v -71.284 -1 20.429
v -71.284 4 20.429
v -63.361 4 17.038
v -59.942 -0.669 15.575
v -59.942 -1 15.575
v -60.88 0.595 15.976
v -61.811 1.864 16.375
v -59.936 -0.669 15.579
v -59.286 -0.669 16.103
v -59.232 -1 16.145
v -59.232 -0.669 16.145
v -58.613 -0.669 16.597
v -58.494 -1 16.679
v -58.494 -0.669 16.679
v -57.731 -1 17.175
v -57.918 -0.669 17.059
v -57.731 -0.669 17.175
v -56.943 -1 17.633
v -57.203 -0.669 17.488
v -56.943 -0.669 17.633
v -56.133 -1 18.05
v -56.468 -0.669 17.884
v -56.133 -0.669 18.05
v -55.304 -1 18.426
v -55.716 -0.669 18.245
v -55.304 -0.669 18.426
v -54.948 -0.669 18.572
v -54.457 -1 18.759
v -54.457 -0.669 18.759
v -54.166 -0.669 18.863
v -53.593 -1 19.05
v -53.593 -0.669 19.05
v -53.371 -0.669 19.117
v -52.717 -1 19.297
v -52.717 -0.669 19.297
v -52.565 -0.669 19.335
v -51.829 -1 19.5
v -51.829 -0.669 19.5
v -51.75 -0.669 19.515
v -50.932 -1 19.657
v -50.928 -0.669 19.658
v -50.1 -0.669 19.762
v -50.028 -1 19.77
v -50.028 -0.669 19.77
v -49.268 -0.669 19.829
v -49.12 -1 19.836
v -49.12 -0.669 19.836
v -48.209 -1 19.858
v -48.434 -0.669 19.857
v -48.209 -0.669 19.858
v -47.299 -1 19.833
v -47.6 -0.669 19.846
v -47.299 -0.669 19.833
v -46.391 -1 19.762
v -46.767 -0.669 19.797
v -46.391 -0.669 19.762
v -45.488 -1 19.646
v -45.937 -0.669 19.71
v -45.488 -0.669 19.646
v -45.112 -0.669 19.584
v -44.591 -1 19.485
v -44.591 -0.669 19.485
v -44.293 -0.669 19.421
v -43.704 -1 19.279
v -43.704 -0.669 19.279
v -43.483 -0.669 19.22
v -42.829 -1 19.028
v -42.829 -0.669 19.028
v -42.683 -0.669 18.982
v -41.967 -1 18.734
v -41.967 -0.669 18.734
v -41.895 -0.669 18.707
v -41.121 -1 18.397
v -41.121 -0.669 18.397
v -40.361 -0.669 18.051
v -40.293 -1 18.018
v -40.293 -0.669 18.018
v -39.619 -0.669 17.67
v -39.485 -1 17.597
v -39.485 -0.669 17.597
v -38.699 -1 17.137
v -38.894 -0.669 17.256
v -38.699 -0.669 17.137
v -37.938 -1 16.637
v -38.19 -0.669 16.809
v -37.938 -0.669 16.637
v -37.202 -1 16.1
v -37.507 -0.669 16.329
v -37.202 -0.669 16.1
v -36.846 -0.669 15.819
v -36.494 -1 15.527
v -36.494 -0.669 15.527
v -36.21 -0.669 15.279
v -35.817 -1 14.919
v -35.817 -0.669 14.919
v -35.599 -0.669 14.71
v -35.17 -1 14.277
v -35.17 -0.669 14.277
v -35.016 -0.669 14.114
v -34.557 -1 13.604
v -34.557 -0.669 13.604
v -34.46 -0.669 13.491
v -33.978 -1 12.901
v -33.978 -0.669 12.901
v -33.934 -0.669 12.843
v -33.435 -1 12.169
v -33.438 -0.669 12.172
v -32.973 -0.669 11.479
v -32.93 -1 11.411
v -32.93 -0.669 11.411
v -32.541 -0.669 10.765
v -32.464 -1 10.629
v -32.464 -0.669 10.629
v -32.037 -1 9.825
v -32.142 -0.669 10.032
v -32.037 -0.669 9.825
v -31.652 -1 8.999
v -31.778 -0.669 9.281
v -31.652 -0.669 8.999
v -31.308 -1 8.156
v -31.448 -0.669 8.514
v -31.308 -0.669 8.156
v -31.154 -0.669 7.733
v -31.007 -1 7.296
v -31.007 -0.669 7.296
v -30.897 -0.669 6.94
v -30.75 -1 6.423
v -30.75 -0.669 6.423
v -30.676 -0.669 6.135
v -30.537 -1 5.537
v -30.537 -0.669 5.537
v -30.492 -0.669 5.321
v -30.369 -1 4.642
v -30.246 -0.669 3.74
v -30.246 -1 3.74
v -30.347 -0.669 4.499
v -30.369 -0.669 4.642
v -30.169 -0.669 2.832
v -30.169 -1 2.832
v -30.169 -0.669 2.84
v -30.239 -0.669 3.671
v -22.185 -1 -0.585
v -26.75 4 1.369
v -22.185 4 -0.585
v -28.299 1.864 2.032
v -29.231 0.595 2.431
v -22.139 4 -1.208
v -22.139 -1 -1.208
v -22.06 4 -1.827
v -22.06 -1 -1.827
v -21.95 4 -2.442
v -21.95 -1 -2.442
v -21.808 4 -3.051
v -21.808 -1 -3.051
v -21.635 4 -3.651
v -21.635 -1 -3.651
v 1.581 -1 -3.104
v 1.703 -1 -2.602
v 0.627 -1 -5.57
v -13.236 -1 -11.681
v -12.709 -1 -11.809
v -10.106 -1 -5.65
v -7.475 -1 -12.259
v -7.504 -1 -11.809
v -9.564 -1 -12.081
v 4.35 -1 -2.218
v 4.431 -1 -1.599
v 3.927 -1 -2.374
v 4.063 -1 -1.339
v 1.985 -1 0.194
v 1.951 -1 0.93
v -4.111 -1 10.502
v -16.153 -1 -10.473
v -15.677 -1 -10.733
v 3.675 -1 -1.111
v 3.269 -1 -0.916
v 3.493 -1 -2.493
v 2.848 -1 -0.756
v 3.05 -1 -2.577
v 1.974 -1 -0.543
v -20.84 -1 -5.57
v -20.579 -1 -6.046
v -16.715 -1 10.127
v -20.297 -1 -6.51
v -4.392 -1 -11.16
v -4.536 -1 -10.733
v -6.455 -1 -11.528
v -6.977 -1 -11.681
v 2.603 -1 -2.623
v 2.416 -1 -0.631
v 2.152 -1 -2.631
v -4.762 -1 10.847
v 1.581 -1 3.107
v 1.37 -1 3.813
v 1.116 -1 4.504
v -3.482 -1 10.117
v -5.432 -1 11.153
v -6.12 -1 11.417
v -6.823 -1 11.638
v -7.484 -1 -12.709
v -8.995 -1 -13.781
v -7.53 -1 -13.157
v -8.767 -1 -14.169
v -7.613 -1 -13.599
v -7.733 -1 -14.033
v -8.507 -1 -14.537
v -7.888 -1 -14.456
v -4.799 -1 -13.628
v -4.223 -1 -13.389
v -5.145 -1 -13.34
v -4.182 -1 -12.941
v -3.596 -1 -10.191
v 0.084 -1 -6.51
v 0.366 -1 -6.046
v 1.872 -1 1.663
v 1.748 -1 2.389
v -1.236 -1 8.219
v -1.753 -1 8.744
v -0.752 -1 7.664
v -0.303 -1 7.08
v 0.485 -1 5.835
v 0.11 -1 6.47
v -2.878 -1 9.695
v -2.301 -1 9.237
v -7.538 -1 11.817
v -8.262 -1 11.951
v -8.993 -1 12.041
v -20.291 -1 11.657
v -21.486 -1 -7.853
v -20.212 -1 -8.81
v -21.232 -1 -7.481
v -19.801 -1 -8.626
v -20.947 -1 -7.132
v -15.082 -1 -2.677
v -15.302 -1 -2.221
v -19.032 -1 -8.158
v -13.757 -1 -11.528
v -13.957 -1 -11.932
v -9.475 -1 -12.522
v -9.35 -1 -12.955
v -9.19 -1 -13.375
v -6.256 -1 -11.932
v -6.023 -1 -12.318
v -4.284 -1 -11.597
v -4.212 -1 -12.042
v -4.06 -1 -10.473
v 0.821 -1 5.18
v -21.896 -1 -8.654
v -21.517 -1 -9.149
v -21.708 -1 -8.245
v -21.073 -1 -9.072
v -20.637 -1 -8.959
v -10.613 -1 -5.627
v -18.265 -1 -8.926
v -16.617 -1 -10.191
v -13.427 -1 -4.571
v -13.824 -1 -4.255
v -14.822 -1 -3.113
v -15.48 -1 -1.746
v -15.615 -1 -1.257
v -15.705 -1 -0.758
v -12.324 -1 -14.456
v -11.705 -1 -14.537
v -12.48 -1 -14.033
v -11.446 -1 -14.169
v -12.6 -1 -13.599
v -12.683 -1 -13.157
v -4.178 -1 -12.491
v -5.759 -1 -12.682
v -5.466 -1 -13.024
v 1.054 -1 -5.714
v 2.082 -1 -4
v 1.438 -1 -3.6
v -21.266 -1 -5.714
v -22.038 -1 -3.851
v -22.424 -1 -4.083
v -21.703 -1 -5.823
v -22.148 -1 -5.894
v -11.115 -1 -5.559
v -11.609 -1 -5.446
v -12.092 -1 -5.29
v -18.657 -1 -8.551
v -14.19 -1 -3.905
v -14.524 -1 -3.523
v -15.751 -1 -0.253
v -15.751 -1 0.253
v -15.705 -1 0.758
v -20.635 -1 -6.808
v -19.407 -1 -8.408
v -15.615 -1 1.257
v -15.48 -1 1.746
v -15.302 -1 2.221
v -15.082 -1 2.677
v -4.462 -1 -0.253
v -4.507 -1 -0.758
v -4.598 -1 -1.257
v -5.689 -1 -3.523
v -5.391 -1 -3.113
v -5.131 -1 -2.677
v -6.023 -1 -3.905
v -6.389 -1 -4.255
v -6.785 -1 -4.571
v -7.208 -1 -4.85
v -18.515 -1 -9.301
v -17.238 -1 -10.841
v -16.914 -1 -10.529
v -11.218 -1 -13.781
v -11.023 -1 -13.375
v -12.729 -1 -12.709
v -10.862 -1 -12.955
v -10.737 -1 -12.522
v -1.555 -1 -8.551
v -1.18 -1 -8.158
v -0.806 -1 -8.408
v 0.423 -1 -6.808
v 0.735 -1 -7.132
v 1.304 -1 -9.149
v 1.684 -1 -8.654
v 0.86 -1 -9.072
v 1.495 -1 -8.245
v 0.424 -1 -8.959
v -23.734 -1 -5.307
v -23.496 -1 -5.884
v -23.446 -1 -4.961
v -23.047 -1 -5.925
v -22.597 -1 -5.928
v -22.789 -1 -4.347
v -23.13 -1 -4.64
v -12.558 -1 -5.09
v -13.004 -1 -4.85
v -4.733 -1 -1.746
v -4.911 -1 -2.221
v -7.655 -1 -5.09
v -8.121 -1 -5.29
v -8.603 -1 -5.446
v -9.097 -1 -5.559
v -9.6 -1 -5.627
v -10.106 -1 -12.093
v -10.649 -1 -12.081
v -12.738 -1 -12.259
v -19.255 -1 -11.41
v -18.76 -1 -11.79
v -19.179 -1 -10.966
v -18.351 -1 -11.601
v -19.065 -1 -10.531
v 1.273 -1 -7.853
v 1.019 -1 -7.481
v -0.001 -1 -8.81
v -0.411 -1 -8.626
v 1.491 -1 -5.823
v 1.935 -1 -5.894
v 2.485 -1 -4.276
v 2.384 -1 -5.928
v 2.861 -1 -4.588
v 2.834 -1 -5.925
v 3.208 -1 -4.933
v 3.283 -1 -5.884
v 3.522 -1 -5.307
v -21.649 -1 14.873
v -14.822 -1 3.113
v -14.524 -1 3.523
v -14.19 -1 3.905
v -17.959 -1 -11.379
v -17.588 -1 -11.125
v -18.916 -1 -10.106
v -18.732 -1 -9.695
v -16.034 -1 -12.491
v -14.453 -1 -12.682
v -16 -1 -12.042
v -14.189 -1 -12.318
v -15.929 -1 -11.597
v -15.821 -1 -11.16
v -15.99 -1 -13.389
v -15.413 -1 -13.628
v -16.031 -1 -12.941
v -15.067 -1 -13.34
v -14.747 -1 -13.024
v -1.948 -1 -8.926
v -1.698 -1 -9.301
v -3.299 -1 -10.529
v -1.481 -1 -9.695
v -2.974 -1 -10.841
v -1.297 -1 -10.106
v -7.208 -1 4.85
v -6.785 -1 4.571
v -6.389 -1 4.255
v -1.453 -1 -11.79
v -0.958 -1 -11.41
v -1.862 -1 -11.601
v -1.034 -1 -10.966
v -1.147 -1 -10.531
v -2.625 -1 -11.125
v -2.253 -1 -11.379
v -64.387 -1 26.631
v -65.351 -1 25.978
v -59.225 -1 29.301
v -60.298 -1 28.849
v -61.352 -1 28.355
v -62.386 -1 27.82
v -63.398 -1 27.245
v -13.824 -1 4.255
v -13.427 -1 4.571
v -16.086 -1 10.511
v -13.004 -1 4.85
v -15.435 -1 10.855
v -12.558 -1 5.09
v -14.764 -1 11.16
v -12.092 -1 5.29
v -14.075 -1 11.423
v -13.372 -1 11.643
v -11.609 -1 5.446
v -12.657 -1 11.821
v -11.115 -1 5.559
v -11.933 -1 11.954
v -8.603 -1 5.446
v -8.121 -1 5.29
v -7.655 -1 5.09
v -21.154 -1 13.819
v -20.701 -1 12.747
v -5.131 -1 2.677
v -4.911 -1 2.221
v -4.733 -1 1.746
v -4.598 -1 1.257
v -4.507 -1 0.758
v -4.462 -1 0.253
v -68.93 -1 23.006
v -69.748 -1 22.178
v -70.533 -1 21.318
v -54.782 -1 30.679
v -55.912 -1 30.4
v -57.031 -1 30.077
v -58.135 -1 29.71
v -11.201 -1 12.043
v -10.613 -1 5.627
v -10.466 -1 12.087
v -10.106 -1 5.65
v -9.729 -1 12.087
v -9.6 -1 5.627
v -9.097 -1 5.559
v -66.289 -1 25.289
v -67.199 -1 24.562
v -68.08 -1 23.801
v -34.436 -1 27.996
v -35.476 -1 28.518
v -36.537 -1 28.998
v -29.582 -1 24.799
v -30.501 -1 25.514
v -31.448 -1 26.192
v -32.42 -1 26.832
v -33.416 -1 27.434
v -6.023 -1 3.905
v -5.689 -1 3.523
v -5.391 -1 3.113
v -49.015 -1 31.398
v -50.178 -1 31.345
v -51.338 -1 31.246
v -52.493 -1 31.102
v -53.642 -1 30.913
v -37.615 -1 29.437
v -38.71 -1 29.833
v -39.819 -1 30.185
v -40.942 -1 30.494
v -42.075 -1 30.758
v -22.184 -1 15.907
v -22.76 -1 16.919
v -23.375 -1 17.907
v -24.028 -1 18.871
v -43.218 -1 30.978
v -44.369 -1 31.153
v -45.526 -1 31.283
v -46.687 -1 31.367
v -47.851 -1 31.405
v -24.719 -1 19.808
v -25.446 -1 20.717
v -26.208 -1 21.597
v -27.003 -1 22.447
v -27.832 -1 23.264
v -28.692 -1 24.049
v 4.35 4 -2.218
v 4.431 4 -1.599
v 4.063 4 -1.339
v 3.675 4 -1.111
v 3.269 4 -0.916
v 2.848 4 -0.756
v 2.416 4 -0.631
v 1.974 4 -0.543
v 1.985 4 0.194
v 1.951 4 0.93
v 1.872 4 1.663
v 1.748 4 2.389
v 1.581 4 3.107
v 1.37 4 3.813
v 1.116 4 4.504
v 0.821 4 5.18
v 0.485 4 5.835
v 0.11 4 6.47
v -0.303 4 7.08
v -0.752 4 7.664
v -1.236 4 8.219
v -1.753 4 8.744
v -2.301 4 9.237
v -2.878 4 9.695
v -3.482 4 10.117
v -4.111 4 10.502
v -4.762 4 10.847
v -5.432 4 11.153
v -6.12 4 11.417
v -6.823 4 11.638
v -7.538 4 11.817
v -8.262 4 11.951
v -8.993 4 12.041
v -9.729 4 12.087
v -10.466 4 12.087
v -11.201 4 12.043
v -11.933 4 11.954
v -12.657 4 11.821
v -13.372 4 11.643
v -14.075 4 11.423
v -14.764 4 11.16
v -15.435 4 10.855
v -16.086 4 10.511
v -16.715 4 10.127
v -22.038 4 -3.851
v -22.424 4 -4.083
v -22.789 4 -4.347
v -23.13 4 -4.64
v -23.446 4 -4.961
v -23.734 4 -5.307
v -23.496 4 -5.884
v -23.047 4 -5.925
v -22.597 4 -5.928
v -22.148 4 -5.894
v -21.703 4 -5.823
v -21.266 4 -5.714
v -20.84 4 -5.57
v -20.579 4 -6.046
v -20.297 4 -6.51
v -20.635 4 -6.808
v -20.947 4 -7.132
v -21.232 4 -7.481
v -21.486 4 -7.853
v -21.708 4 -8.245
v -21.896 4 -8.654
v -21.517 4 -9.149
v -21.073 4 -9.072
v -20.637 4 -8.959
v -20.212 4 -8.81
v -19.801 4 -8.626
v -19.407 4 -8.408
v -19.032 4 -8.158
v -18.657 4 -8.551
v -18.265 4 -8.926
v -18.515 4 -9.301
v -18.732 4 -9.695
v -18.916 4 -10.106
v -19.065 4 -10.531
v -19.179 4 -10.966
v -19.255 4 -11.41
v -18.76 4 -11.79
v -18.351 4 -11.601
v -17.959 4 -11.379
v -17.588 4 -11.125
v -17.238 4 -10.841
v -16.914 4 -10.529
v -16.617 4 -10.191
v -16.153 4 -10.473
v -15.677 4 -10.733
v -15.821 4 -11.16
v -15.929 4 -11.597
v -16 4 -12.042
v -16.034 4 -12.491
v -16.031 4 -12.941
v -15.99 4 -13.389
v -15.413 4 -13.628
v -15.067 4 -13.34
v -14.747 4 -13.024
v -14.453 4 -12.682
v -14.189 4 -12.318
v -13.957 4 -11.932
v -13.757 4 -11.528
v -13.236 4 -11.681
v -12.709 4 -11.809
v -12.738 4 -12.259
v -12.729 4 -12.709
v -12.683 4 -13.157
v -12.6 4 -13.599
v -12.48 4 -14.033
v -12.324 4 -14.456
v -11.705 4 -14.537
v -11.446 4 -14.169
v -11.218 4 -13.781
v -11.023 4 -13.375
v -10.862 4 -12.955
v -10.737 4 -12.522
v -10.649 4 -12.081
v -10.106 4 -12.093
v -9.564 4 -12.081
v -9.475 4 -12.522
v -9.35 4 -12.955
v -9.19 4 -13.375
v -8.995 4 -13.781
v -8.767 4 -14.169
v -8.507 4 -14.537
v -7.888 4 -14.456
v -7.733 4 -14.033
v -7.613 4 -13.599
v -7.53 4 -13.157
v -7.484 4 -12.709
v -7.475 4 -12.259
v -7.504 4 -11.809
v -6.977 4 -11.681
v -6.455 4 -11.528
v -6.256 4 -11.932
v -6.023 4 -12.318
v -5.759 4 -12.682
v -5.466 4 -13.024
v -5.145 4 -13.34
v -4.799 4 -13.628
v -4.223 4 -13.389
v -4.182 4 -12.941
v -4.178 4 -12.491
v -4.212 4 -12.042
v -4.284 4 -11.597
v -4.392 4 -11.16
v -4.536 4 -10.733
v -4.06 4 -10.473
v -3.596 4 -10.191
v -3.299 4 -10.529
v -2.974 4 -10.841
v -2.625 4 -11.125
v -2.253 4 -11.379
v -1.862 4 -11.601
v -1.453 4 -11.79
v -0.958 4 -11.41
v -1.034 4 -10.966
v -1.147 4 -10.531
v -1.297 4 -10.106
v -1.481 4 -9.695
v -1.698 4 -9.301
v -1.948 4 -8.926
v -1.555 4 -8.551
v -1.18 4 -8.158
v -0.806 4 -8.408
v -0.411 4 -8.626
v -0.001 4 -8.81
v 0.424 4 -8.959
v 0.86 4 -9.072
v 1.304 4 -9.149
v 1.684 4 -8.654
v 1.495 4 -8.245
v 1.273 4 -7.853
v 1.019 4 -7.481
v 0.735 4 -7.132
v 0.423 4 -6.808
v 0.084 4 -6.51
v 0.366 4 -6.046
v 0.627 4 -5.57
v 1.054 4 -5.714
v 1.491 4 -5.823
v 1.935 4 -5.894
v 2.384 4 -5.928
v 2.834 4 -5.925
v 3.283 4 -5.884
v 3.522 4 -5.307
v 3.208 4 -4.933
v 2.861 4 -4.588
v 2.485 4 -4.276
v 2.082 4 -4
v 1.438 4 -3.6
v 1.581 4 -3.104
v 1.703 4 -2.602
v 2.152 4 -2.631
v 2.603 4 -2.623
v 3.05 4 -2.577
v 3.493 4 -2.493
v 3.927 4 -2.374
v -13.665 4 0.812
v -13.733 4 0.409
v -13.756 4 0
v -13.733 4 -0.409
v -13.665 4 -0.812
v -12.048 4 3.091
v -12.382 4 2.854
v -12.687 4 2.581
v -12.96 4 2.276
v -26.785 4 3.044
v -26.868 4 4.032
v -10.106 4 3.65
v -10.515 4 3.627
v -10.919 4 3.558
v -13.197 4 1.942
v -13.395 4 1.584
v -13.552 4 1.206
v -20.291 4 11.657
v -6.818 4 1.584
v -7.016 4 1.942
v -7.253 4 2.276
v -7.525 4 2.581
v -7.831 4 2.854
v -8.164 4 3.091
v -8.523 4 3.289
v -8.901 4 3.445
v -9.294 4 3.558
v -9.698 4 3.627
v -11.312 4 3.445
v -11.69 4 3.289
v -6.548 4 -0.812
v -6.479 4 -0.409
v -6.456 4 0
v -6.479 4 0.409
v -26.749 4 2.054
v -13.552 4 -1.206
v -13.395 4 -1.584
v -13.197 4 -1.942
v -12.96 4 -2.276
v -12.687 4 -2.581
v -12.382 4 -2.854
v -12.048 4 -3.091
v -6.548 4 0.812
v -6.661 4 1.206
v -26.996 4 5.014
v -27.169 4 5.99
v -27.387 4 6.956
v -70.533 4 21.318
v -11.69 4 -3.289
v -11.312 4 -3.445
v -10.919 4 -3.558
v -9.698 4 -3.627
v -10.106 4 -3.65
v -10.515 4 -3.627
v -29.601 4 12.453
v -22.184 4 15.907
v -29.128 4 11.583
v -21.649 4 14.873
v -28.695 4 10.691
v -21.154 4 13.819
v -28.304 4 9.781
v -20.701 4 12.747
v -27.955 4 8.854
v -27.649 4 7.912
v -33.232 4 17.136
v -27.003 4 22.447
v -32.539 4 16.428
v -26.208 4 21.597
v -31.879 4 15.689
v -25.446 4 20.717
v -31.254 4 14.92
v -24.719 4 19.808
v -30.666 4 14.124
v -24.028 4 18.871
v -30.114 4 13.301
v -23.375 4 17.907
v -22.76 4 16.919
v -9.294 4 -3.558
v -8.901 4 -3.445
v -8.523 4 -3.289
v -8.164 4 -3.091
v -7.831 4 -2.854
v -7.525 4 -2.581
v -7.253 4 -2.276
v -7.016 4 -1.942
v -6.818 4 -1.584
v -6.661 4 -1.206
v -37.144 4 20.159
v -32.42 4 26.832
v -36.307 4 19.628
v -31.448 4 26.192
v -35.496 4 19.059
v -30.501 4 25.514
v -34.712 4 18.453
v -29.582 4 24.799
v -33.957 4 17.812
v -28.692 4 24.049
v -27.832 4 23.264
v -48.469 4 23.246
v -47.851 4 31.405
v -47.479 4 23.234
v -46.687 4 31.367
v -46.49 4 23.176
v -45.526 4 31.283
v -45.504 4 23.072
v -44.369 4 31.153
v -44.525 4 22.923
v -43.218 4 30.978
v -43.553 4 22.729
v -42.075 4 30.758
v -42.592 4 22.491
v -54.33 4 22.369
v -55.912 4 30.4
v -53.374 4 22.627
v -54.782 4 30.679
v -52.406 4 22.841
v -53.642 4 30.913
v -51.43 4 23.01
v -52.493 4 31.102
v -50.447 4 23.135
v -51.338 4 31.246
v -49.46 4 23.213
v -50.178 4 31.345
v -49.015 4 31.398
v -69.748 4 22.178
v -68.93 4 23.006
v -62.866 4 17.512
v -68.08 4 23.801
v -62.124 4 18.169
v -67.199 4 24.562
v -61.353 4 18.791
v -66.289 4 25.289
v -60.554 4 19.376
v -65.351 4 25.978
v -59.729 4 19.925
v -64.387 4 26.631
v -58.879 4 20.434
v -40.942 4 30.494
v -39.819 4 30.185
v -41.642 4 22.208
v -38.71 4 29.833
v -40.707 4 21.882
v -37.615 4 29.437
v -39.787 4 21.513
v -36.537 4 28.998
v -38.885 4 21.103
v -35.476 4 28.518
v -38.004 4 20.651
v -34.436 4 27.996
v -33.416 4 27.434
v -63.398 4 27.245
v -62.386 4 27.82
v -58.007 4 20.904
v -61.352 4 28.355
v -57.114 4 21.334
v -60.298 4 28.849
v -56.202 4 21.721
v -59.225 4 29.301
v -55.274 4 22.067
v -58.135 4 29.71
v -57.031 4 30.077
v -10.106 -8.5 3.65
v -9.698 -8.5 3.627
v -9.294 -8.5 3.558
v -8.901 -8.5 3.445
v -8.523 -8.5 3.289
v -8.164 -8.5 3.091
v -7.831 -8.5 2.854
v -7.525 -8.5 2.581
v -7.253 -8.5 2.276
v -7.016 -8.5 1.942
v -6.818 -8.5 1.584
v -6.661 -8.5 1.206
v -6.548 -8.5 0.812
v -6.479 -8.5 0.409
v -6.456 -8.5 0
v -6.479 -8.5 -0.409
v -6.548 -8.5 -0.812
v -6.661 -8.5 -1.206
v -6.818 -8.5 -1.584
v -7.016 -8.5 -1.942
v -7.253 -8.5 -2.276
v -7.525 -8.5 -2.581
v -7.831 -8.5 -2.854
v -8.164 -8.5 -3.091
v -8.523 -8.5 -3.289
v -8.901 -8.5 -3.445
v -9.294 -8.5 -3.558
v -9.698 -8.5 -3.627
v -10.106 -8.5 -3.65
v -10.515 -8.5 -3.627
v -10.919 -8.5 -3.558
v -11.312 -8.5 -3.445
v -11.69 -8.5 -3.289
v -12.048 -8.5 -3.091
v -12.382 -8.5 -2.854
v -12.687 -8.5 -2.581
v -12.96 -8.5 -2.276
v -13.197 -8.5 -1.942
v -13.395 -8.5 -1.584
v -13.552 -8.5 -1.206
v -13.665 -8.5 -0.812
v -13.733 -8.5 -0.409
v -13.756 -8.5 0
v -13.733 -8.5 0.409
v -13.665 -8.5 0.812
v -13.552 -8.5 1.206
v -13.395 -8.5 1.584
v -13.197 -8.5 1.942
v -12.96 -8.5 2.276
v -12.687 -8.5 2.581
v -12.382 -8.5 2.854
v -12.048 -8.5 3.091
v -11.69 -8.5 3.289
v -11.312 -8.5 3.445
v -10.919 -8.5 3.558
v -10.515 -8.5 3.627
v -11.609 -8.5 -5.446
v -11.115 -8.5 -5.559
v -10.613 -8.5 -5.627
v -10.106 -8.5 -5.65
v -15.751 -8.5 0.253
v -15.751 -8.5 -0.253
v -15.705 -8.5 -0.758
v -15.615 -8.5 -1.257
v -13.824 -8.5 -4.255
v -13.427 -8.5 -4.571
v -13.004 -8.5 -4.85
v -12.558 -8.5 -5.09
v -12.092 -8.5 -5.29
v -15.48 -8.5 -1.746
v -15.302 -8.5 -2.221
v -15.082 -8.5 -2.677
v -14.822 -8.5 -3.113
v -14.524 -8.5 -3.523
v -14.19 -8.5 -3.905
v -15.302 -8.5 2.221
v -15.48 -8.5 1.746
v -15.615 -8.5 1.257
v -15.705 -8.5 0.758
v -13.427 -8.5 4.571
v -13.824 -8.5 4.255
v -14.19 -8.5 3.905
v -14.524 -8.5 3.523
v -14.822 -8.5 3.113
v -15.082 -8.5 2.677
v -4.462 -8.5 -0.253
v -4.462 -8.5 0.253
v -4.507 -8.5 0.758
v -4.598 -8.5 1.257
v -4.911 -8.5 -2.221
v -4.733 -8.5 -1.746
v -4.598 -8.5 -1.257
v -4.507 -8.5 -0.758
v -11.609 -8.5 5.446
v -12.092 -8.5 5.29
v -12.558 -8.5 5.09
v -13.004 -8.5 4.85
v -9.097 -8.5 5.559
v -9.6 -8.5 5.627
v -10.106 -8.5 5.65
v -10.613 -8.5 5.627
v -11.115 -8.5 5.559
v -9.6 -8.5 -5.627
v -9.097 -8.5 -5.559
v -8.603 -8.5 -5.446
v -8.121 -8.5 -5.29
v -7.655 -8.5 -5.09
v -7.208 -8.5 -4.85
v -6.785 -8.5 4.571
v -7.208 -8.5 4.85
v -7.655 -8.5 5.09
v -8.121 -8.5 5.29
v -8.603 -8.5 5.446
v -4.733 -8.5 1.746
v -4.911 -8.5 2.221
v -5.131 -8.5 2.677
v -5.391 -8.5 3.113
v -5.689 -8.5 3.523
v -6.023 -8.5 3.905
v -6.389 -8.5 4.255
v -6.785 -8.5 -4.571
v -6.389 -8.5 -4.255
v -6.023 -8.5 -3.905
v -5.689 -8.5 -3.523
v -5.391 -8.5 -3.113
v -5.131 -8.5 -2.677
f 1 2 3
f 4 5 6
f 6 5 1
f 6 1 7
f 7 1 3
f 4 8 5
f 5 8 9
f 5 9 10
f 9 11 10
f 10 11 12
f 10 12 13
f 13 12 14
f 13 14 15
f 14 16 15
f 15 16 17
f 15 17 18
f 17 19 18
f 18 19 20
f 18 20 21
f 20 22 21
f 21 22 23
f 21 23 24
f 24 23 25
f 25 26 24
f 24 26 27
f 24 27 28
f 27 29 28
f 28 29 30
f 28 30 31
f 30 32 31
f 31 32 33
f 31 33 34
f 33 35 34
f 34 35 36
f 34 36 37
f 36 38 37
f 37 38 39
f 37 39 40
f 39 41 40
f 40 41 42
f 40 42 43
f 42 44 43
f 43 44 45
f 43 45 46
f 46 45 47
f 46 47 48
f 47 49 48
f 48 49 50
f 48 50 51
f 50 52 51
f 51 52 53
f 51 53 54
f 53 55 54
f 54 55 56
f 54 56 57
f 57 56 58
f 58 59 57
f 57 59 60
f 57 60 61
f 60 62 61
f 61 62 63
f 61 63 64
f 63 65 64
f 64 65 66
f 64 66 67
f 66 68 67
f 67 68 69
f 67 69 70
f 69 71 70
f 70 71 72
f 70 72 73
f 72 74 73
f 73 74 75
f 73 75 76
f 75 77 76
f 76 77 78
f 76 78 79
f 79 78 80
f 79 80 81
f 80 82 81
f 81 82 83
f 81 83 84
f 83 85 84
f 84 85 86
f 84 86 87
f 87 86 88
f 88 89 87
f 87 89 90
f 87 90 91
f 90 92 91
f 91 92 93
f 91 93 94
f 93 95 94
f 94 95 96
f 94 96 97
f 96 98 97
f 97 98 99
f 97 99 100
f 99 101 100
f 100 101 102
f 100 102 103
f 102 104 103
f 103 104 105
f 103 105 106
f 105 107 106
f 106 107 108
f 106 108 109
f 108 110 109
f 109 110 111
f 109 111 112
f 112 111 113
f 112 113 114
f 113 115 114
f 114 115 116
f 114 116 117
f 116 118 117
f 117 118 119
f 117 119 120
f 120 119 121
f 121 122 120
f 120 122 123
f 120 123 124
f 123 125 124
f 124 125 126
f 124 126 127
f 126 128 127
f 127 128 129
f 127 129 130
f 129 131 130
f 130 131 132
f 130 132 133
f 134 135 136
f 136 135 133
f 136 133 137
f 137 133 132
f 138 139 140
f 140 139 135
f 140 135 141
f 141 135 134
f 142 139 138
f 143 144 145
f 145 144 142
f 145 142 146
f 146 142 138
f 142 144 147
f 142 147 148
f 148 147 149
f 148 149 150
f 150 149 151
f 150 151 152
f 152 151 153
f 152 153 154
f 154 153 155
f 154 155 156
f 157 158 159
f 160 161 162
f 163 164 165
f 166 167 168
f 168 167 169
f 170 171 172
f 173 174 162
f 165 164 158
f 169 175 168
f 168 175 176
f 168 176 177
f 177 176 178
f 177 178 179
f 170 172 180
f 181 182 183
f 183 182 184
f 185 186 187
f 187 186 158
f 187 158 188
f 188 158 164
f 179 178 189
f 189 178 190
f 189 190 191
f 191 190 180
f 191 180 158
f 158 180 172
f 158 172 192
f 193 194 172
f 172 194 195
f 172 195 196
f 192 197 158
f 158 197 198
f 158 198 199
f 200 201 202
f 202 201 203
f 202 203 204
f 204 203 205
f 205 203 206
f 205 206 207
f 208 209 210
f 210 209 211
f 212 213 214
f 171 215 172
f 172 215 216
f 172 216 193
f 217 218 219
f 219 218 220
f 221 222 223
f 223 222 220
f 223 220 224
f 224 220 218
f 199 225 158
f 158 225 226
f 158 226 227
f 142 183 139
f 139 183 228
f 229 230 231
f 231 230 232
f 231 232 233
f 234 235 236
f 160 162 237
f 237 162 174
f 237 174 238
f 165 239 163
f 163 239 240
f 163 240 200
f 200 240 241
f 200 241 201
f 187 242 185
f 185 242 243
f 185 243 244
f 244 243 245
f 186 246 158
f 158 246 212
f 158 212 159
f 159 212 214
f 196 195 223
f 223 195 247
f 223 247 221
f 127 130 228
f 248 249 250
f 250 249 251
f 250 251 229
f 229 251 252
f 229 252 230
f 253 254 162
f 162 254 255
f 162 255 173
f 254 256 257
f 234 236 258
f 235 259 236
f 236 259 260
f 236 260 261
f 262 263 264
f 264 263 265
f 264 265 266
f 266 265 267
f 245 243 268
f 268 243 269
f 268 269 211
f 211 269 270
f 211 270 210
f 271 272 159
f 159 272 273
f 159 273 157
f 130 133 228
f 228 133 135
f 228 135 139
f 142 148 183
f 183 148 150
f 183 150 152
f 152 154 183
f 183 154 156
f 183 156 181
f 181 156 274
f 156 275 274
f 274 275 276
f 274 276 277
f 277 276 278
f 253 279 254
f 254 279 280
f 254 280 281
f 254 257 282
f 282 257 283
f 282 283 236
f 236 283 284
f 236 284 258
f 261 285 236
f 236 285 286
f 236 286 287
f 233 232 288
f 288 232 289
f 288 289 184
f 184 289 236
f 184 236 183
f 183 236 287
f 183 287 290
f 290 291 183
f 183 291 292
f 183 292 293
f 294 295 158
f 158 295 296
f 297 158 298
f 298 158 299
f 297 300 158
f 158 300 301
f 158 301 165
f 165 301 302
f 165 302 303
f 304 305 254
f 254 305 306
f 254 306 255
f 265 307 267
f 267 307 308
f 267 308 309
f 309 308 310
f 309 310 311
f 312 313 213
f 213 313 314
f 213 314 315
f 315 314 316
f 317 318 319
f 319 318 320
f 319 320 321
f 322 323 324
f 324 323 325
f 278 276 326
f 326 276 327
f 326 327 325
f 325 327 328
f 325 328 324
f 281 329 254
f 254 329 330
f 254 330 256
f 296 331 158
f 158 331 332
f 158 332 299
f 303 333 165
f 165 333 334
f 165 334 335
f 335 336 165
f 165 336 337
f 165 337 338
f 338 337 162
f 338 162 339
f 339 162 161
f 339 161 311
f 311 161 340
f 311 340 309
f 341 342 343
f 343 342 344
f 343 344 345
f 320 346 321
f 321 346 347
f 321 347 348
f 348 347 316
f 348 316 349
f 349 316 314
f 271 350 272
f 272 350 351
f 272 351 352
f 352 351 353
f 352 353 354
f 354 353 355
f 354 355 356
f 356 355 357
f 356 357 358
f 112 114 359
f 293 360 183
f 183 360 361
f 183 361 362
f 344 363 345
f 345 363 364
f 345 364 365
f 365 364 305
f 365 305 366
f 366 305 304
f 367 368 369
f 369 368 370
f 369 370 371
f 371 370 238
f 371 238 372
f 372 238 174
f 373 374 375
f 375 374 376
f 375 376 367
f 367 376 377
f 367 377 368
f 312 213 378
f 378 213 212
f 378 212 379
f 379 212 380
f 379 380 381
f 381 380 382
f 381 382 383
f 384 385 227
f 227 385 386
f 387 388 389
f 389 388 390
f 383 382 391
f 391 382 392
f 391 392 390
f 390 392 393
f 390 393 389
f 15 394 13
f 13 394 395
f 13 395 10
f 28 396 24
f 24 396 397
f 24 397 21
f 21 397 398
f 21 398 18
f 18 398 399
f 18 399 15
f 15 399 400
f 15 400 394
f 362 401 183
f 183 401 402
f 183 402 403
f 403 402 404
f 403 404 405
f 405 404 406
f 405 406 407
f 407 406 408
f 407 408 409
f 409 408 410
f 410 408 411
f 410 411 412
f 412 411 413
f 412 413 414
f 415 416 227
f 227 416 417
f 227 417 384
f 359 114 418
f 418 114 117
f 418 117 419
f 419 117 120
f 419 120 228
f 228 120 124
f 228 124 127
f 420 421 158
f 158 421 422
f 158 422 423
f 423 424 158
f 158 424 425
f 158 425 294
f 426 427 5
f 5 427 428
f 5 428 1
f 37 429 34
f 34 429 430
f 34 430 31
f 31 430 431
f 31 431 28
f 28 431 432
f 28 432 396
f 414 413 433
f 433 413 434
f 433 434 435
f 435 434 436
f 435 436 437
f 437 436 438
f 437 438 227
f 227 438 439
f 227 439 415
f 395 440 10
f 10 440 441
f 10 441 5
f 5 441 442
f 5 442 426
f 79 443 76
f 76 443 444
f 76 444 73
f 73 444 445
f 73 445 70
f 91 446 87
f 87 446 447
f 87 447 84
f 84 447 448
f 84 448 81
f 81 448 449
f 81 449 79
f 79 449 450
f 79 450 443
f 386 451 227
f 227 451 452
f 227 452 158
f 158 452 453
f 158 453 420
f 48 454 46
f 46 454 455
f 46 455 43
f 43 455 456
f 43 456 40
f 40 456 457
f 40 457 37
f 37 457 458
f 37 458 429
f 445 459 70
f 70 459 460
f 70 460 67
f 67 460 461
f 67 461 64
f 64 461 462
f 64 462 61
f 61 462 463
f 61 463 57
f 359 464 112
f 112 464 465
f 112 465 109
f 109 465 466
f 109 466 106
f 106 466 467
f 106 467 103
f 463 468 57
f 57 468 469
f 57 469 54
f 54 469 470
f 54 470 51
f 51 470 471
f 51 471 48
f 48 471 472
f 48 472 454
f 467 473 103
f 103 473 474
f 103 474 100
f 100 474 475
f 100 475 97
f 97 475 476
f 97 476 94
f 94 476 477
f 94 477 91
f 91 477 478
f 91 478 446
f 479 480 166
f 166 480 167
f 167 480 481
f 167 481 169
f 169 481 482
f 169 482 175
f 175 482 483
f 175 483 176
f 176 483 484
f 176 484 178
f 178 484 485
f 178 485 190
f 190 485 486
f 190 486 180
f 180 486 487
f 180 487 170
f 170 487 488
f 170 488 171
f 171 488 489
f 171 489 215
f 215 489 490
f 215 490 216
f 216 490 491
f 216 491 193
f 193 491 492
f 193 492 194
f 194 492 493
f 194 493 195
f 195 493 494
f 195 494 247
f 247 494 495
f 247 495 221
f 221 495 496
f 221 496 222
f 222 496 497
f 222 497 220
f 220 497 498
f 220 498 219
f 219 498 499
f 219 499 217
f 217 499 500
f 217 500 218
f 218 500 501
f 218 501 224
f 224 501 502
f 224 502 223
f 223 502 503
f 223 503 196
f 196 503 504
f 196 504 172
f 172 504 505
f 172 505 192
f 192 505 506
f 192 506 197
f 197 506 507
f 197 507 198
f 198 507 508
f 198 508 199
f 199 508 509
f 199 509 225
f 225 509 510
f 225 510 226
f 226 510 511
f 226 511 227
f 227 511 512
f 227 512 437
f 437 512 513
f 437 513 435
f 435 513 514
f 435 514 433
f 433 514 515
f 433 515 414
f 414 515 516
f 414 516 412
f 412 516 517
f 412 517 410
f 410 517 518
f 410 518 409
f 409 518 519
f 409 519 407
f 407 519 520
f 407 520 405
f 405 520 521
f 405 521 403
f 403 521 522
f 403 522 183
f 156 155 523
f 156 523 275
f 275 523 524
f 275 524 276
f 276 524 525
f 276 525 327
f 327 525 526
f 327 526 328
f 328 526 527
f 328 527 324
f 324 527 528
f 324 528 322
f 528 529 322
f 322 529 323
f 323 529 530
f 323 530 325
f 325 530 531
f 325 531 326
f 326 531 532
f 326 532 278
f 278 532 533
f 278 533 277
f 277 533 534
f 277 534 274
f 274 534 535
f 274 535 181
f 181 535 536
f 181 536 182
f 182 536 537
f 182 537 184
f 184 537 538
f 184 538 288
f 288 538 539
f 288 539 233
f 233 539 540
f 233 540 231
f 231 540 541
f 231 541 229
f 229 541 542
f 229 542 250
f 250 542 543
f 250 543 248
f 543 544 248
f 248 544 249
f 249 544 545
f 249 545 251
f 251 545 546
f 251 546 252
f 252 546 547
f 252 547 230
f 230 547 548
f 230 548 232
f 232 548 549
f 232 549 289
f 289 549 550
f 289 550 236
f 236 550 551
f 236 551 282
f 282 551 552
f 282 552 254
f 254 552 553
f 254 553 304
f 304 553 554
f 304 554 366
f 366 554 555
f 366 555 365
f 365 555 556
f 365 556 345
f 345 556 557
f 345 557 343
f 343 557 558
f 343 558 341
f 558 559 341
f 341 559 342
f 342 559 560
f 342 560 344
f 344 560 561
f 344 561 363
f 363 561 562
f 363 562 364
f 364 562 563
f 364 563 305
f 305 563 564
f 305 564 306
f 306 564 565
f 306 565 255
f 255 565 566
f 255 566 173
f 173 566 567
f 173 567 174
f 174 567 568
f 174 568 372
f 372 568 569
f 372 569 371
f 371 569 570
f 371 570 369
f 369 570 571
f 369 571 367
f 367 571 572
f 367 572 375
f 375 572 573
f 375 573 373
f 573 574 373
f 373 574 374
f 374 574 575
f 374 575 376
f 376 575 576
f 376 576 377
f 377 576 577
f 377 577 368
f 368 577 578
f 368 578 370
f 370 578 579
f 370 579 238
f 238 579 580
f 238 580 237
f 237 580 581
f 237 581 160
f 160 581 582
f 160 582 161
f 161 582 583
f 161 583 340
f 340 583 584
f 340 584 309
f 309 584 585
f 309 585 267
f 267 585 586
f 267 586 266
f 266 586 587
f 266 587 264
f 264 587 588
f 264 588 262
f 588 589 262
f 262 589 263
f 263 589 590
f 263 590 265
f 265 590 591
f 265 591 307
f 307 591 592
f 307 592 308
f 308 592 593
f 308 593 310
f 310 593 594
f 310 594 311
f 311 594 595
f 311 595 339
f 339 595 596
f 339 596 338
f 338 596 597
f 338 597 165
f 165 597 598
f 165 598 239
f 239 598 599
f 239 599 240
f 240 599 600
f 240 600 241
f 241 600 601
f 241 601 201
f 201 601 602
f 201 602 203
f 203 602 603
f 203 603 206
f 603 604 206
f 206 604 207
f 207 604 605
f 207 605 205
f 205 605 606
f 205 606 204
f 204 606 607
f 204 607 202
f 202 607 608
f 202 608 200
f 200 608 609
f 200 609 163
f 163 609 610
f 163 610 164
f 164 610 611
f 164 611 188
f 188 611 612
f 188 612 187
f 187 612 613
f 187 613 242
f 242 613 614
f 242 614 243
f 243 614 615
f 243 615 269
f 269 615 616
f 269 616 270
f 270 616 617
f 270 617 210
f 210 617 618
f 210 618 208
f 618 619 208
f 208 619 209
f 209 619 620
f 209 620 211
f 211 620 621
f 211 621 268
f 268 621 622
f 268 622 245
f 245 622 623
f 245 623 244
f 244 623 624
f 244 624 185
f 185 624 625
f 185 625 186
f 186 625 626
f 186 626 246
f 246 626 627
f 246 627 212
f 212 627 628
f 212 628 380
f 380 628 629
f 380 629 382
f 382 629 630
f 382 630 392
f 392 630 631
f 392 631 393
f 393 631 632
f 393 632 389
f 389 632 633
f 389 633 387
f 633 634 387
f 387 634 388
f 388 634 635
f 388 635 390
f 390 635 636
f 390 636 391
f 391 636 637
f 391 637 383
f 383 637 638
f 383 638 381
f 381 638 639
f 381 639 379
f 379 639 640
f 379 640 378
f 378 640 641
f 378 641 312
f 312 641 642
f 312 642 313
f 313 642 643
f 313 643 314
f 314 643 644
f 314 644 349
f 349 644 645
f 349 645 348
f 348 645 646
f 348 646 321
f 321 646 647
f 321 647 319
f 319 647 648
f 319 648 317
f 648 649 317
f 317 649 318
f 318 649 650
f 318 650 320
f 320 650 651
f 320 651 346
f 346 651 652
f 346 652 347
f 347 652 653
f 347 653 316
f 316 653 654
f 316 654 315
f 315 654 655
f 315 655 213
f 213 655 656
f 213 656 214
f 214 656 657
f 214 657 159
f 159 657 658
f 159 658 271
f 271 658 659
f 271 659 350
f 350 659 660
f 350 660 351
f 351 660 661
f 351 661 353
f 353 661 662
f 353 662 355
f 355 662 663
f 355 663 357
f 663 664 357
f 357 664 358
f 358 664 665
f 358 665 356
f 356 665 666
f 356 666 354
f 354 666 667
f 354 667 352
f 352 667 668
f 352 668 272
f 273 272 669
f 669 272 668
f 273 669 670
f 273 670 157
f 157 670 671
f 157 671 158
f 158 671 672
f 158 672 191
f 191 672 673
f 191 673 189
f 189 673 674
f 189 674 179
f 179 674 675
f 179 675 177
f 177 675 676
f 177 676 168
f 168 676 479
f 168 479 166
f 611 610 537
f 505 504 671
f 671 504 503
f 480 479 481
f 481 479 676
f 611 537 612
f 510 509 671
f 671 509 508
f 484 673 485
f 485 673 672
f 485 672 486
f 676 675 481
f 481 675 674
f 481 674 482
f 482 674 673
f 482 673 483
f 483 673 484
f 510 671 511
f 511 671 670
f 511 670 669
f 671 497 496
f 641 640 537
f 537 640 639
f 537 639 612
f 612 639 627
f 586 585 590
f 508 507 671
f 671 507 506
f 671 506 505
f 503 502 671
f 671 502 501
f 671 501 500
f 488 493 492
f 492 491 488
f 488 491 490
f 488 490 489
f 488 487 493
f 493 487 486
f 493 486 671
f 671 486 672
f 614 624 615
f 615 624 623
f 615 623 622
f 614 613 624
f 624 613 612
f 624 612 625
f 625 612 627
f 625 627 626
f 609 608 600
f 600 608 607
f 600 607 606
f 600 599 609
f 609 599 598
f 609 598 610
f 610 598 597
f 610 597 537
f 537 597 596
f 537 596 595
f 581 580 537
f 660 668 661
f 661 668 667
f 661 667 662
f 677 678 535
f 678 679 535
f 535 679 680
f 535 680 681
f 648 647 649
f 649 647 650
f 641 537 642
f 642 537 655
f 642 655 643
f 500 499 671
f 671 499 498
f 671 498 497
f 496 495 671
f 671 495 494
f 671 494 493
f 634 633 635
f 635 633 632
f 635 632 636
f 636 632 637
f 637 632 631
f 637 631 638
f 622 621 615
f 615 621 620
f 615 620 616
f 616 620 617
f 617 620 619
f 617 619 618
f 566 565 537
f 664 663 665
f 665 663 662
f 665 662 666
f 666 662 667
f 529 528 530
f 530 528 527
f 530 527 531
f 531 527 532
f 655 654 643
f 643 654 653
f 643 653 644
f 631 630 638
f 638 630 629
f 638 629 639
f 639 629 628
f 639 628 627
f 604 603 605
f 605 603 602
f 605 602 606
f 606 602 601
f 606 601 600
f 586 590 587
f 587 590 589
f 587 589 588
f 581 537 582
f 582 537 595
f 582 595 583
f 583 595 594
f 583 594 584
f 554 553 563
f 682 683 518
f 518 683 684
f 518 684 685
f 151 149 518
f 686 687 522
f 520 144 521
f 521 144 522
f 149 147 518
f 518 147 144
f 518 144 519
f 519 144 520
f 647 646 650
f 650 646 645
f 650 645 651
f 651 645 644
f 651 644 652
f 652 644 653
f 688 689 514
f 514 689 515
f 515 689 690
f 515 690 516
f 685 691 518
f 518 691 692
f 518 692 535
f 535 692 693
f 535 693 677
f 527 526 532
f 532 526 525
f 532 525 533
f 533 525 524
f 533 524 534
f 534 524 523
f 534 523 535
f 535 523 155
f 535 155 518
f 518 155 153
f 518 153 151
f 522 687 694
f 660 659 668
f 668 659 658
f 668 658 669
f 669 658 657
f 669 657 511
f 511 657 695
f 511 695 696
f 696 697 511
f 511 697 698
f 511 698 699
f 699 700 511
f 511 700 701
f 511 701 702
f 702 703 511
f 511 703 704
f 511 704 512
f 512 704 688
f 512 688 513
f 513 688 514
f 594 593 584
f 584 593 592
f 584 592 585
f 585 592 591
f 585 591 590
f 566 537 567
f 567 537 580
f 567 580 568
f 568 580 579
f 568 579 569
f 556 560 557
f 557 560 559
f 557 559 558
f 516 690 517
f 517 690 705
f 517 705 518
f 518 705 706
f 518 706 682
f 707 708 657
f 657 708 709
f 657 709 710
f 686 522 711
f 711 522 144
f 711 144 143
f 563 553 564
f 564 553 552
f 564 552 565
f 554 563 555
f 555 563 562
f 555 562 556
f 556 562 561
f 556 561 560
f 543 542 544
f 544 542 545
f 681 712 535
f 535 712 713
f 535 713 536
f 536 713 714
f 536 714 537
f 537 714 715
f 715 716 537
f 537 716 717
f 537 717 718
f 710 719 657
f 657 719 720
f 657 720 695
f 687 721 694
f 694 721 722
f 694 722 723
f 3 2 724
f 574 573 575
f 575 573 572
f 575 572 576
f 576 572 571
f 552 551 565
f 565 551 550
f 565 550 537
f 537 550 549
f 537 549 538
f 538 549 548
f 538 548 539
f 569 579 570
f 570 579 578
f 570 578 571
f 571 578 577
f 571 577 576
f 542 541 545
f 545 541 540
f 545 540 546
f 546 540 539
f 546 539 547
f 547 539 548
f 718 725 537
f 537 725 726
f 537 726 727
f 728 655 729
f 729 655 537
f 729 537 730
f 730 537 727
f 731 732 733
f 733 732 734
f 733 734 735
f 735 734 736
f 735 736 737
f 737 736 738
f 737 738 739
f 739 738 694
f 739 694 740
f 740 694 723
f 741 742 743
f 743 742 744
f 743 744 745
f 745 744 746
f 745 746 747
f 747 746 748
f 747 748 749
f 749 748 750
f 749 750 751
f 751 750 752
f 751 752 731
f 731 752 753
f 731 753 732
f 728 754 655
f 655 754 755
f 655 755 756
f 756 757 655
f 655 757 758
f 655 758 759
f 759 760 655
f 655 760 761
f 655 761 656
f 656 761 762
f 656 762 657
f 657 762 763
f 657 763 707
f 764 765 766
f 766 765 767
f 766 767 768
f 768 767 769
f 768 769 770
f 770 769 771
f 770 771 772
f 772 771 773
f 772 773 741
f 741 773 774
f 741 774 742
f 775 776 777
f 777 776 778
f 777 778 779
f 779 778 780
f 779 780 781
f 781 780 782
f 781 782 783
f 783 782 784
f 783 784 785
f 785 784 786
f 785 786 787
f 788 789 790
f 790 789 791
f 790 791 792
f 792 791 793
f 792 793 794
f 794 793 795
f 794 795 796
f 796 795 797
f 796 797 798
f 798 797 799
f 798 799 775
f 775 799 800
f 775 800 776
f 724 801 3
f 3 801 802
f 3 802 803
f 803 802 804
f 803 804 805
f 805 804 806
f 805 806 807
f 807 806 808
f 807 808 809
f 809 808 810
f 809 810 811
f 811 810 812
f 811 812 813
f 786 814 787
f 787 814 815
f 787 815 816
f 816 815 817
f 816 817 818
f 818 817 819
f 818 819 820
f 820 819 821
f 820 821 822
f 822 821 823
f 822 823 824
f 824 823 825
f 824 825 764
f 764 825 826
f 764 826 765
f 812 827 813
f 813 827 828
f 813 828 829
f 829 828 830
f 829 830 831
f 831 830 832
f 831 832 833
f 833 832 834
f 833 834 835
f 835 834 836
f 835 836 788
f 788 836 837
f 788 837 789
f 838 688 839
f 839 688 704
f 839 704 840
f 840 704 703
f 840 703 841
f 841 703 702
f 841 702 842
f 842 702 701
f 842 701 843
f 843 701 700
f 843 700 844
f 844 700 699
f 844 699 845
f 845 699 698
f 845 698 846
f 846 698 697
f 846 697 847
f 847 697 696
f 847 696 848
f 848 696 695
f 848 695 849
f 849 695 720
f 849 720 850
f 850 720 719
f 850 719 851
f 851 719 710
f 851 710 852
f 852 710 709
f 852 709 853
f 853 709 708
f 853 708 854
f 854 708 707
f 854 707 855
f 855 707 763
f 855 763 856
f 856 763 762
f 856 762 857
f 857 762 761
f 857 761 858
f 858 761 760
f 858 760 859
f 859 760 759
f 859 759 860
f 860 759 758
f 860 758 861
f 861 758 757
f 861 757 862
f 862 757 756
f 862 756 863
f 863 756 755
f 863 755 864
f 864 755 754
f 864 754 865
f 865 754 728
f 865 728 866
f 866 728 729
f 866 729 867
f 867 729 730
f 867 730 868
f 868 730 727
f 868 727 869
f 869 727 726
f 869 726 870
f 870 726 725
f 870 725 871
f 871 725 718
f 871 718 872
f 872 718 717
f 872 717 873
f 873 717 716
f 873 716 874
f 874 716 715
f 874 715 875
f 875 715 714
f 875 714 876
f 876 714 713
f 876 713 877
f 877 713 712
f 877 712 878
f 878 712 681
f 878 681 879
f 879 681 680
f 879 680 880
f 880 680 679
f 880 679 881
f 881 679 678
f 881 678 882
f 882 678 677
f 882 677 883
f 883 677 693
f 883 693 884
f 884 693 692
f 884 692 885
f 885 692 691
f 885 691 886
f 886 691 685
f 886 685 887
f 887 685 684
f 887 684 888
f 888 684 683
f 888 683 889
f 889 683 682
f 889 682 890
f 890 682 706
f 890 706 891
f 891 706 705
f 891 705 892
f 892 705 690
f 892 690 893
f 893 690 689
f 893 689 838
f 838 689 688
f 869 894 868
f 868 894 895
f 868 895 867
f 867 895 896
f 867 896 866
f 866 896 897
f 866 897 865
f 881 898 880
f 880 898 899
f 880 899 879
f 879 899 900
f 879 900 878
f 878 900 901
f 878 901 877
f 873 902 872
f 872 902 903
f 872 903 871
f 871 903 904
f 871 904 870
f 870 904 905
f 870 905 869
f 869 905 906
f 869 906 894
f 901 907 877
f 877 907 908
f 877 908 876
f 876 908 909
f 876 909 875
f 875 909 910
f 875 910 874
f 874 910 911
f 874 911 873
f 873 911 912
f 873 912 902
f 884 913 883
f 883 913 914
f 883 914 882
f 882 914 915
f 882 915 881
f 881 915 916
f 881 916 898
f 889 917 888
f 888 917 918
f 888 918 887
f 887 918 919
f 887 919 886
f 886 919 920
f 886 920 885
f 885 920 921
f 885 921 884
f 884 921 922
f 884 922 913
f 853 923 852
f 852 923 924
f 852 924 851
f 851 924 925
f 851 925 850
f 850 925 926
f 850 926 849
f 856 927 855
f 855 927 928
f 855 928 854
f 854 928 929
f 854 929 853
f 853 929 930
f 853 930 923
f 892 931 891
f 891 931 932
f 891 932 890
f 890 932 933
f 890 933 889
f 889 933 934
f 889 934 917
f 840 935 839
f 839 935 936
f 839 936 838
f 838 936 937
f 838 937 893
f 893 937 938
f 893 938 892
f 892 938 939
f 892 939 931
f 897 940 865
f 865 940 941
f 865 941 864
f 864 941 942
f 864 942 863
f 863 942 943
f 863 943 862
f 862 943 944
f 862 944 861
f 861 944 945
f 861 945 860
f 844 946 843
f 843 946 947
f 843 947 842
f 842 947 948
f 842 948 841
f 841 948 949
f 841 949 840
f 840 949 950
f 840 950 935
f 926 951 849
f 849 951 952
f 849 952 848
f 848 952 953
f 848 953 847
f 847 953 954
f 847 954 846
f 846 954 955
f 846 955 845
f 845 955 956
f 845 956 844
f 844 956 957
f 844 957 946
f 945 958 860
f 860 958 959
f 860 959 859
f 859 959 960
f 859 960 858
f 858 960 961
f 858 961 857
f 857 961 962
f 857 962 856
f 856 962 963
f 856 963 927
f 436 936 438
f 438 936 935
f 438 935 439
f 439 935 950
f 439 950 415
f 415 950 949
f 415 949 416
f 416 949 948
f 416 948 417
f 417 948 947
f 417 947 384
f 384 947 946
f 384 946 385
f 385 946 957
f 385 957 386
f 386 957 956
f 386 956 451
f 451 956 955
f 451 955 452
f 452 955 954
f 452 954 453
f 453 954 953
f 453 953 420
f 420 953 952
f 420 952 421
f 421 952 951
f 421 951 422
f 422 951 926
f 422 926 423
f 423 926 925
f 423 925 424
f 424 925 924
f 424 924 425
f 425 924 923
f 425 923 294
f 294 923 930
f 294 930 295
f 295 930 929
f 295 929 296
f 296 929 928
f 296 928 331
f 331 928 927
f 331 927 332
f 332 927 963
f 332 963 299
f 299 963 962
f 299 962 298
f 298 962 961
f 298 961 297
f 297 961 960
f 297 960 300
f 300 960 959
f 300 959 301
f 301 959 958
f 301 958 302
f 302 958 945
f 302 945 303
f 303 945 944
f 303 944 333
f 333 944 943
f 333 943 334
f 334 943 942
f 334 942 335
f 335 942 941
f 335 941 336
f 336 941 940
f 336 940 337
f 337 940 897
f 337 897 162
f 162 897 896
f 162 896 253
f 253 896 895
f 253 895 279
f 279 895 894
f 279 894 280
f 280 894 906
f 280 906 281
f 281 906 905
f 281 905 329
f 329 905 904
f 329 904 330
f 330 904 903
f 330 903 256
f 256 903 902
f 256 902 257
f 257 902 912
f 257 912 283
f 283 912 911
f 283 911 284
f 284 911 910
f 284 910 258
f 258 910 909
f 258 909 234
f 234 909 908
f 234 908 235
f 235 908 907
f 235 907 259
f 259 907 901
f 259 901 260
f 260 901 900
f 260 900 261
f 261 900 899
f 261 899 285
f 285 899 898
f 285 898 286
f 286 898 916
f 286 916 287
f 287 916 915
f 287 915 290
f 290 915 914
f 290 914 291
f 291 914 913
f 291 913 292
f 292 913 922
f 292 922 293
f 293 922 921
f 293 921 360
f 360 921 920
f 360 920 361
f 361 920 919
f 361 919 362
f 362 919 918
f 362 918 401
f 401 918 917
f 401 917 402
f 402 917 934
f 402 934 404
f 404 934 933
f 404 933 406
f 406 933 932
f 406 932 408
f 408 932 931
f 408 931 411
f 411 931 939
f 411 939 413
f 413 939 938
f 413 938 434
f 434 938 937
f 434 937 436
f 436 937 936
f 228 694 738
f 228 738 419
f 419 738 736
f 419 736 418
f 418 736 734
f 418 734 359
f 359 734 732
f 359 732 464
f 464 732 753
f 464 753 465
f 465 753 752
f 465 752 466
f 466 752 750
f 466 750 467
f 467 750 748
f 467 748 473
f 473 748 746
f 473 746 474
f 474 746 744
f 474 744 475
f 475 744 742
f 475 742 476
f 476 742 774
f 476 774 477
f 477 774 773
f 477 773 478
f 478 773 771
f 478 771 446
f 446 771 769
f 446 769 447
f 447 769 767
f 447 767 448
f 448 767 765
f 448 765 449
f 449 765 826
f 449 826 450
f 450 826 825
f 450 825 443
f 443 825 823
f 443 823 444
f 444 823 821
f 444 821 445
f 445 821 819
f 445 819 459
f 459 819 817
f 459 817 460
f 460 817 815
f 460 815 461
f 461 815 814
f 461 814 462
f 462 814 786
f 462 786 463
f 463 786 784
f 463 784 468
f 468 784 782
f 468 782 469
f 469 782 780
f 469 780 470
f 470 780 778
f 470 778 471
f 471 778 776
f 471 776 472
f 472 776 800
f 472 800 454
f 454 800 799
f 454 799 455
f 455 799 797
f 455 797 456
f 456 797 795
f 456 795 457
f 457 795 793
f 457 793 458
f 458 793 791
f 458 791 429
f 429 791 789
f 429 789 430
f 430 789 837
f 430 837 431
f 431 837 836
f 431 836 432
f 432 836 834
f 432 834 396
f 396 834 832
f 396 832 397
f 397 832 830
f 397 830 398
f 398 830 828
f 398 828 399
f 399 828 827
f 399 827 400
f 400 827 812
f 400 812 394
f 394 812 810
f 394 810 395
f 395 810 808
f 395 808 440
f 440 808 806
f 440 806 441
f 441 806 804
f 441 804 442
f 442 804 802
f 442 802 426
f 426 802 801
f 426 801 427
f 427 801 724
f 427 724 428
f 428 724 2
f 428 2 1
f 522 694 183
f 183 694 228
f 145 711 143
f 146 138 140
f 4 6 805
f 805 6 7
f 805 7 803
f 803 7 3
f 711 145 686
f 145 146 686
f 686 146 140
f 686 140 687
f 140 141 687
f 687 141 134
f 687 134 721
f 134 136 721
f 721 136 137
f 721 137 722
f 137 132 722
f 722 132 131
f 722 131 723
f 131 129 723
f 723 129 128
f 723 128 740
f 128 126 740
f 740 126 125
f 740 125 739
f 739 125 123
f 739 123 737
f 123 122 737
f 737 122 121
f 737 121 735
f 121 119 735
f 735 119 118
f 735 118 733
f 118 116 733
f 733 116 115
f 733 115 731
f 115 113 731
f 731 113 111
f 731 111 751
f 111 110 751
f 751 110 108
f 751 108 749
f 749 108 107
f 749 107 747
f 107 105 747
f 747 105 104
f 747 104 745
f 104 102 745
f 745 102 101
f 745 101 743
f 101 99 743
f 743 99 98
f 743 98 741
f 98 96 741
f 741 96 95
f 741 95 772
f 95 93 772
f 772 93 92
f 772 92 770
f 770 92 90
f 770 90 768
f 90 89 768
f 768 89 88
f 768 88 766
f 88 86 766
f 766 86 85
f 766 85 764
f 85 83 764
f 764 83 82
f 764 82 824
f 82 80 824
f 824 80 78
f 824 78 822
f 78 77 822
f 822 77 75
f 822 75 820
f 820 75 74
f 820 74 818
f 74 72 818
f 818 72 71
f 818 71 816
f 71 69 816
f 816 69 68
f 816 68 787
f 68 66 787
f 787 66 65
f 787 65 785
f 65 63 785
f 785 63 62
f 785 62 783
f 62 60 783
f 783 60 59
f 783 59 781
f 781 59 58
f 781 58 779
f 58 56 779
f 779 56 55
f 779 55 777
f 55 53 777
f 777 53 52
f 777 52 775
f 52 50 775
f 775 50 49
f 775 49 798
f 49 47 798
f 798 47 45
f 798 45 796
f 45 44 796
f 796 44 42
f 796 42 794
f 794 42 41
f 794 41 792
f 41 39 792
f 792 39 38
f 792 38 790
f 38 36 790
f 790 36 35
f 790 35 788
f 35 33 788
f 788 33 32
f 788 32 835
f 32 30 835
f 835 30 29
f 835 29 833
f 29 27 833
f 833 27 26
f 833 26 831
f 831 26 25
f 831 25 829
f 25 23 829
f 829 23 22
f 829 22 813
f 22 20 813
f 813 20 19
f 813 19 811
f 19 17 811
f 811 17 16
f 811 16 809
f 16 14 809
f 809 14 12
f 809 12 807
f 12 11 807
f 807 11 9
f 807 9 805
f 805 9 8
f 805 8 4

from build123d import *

# Parameters (mm, degrees)
SKETCH1_R           = 3.65
BOSS_EXTRUDE1_DEPTH = 5
SKETCH_1_R          = 5.65
SKETCH_1_R_2        = 3.65
EXTRUDE_1_DEPTH     = 7.5
EXTRUDE_2_DEPTH     = 5


with BuildPart() as part:
    # Sketch1 → Boss-Extrude1 (new body)
    with BuildSketch(Plane(origin=(0, 4, 0), x_dir=(1, 0, 0), z_dir=(0, 1, 0))):
        with BuildLine():
            Line((1.43808022, 3.600125745), (2.081641936, 4))
            ThreePointArc((2.081641936, 4), (2.861028333, 4.588201733), (3.521749436, 5.30713988))
            ThreePointArc((3.521749436, 5.30713988), (3.405395609, 5.596745198), (3.282888305, 5.883801663))
            ThreePointArc((3.282888305, 5.883801663), (1.93527598, 5.894040025), (0.627094961, 5.57027124))
            ThreePointArc((0.627094961, 5.57027124), (0.366286148, 6.046375), (0.084372603, 6.510293938))
            ThreePointArc((0.084372603, 6.510293938), (1.018855105, 7.48132754), (1.683794586, 8.65351323))
            ThreePointArc((1.683794586, 8.65351323), (1.496450048, 8.903135899), (1.303821399, 9.148703928))
            ThreePointArc((1.303821399, 9.148703928), (-0.000522033, 8.809805691), (-1.180330337, 8.158486898))
            ThreePointArc((-1.180330337, 8.158486898), (-1.555477026, 8.550865528), (-1.947855656, 8.926012217))
            ThreePointArc((-1.947855656, 8.926012217), (-1.296536862, 10.105820521), (-0.957638625, 11.410163953))
            ThreePointArc((-0.957638625, 11.410163953), (-1.203206655, 11.602792602), (-1.452829324, 11.79013714))
            ThreePointArc((-1.452829324, 11.79013714), (-2.625015014, 11.125197659), (-3.596048616, 10.190715157))
            ThreePointArc((-3.596048616, 10.190715157), (-4.059967554, 10.472628702), (-4.536071314, 10.733437515))
            ThreePointArc((-4.536071314, 10.733437515), (-4.212302529, 12.041618533), (-4.222540891, 13.389230859))
            ThreePointArc((-4.222540891, 13.389230859), (-4.509597355, 13.511738163), (-4.799202674, 13.62809199))
            ThreePointArc((-4.799202674, 13.62809199), (-5.759348103, 12.682425791), (-6.455432668, 11.528463019))
            ThreePointArc((-6.455432668, 11.528463019), (-6.976508546, 11.680699536), (-7.503891752, 11.809396783))
            ThreePointArc((-7.503891752, 11.809396783), (-7.529737283, 13.156800143), (-7.888414517, 14.455843809))
            ThreePointArc((-7.888414517, 14.455843809), (-8.197396993, 14.499881098), (-8.507248835, 14.537314892))
            ThreePointArc((-8.507248835, 14.537314892), (-9.18992168, 13.375367565), (-9.563620196, 12.080565177))
            ThreePointArc((-9.563620196, 12.080565177), (-10.106342554, 12.09275), (-10.649064912, 12.080565177))
            ThreePointArc((-10.649064912, 12.080565177), (-11.022763428, 13.375367565), (-11.705436272, 14.537314892))
            ThreePointArc((-11.705436272, 14.537314892), (-12.015288115, 14.499881098), (-12.324270591, 14.455843809))
            ThreePointArc((-12.324270591, 14.455843809), (-12.682947825, 13.156800143), (-12.708793355, 11.809396783))
            ThreePointArc((-12.708793355, 11.809396783), (-13.236176561, 11.680699536), (-13.757252439, 11.528463019))
            ThreePointArc((-13.757252439, 11.528463019), (-14.453337005, 12.682425791), (-15.413482434, 13.62809199))
            ThreePointArc((-15.413482434, 13.62809199), (-15.703087752, 13.511738163), (-15.990144217, 13.389230859))
            ThreePointArc((-15.990144217, 13.389230859), (-16.000382579, 12.041618533), (-15.676613793, 10.733437515))
            ThreePointArc((-15.676613793, 10.733437515), (-16.152717554, 10.472628702), (-16.616636492, 10.190715157))
            ThreePointArc((-16.616636492, 10.190715157), (-17.587670094, 11.125197659), (-18.759855783, 11.79013714))
            ThreePointArc((-18.759855783, 11.79013714), (-19.009478453, 11.602792602), (-19.255046482, 11.410163953))
            ThreePointArc((-19.255046482, 11.410163953), (-18.916148245, 10.105820521), (-18.264829452, 8.926012217))
            ThreePointArc((-18.264829452, 8.926012217), (-18.657208082, 8.550865528), (-19.032354771, 8.158486898))
            ThreePointArc((-19.032354771, 8.158486898), (-20.212163074, 8.809805691), (-21.516506507, 9.148703928))
            ThreePointArc((-21.516506507, 9.148703928), (-21.709135156, 8.903135899), (-21.896479694, 8.65351323))
            ThreePointArc((-21.896479694, 8.65351323), (-21.231540213, 7.48132754), (-20.297057711, 6.510293938))
            ThreePointArc((-20.297057711, 6.510293938), (-20.578971255, 6.046375), (-20.839780068, 5.57027124))
            ThreePointArc((-20.839780068, 5.57027124), (-22.147961087, 5.894040025), (-23.495573413, 5.883801663))
            ThreePointArc((-23.495573413, 5.883801663), (-23.618080717, 5.596745198), (-23.734434544, 5.30713988))
            ThreePointArc((-23.734434544, 5.30713988), (-22.788768345, 4.346994451), (-21.634805572, 3.650909885))
            ThreePointArc((-21.634805572, 3.650909885), (-21.803584999, 3.067429176), (-21.942853375, 2.47620963))
            ThreePointArc((-21.942853375, 2.47620963), (-22.095637401, -1.578420611), (-20.898643838, -5.455349261))
            ThreePointArc((-20.898643838, -5.455349261), (-7.038913378, -11.697242445), (1.974222624, 0.542722358))
            ThreePointArc((1.974222624, 0.542722358), (3.269025011, 0.916420874), (4.430972339, 1.599093719))
            ThreePointArc((4.430972339, 1.599093719), (4.393538544, 1.908945561), (4.349501255, 2.217928037))
            ThreePointArc((4.349501255, 2.217928037), (3.050457589, 2.576605271), (1.70305423, 2.602450802))
            ThreePointArc((1.70305423, 2.602450802), (1.581217534, 3.104116905), (1.43808022, 3.600125745))
        make_face()
        with Locations(Location((-10.106342554, 0, 0), (0, 0, 90))):
            Circle(SKETCH1_R, mode=Mode.SUBTRACT)
    extrude(amount=-BOSS_EXTRUDE1_DEPTH)

    # 草图1 → 凸台-拉伸1 (add)
    with BuildSketch(Plane.XZ.offset(1)):
        with Locations(Location((-10.106342554, 0, 0), (0, 0, 90))):
            Circle(SKETCH_1_R)
        with Locations(Location((-10.106342554, 0, 0), (0, 0, 270))):
            Circle(SKETCH_1_R_2, mode=Mode.SUBTRACT)
    extrude(amount=EXTRUDE_1_DEPTH)

    # 草图2 → 凸台-拉伸2 (add)
    with BuildSketch(Plane(origin=(0, 4, 0), x_dir=(1, 0, 0), z_dir=(0, 1, 0))):
        with BuildLine():
            Line((-20.290866754, -11.657484407), (-16.715112634, -10.127129929))
            Line((-16.715112634, -10.127129929), (-22.184948493, 0.584706011))
            Line((-22.184948493, 0.584706011), (-30.168856615, -2.832254199))
            ThreePointArc((-30.168856615, -2.832254199), (-41.120771134, -18.396815496), (-59.941897602, -15.574547178))
            Line((-59.941897602, -15.574547178), (-71.283909207, -20.428711551))
            ThreePointArc((-71.283909207, -20.428711551), (-43.218414154, -30.97827059), (-20.290866754, -11.657484407))
        make_face()
    extrude(amount=-EXTRUDE_2_DEPTH)

    # 草图3 → 切除-旋转1 (revolve, cut)
    with BuildSketch(Plane(origin=(-18.284564858, 0, -22.548473972), x_dir=(0.7767217347580433, 0, -0.6298439066581941), z_dir=(0.6298439066581941, 0, 0.7767217347580433))):
        Polygon((-60.074661111, 4), (-56.274661111, -1.234092457), (-56.274661111, 4), align=None)
    revolve(axis=Axis((-48.246342554, -1, 1.74754128), (0, 1, 0)), mode=Mode.SUBTRACT)


solid = part.part
